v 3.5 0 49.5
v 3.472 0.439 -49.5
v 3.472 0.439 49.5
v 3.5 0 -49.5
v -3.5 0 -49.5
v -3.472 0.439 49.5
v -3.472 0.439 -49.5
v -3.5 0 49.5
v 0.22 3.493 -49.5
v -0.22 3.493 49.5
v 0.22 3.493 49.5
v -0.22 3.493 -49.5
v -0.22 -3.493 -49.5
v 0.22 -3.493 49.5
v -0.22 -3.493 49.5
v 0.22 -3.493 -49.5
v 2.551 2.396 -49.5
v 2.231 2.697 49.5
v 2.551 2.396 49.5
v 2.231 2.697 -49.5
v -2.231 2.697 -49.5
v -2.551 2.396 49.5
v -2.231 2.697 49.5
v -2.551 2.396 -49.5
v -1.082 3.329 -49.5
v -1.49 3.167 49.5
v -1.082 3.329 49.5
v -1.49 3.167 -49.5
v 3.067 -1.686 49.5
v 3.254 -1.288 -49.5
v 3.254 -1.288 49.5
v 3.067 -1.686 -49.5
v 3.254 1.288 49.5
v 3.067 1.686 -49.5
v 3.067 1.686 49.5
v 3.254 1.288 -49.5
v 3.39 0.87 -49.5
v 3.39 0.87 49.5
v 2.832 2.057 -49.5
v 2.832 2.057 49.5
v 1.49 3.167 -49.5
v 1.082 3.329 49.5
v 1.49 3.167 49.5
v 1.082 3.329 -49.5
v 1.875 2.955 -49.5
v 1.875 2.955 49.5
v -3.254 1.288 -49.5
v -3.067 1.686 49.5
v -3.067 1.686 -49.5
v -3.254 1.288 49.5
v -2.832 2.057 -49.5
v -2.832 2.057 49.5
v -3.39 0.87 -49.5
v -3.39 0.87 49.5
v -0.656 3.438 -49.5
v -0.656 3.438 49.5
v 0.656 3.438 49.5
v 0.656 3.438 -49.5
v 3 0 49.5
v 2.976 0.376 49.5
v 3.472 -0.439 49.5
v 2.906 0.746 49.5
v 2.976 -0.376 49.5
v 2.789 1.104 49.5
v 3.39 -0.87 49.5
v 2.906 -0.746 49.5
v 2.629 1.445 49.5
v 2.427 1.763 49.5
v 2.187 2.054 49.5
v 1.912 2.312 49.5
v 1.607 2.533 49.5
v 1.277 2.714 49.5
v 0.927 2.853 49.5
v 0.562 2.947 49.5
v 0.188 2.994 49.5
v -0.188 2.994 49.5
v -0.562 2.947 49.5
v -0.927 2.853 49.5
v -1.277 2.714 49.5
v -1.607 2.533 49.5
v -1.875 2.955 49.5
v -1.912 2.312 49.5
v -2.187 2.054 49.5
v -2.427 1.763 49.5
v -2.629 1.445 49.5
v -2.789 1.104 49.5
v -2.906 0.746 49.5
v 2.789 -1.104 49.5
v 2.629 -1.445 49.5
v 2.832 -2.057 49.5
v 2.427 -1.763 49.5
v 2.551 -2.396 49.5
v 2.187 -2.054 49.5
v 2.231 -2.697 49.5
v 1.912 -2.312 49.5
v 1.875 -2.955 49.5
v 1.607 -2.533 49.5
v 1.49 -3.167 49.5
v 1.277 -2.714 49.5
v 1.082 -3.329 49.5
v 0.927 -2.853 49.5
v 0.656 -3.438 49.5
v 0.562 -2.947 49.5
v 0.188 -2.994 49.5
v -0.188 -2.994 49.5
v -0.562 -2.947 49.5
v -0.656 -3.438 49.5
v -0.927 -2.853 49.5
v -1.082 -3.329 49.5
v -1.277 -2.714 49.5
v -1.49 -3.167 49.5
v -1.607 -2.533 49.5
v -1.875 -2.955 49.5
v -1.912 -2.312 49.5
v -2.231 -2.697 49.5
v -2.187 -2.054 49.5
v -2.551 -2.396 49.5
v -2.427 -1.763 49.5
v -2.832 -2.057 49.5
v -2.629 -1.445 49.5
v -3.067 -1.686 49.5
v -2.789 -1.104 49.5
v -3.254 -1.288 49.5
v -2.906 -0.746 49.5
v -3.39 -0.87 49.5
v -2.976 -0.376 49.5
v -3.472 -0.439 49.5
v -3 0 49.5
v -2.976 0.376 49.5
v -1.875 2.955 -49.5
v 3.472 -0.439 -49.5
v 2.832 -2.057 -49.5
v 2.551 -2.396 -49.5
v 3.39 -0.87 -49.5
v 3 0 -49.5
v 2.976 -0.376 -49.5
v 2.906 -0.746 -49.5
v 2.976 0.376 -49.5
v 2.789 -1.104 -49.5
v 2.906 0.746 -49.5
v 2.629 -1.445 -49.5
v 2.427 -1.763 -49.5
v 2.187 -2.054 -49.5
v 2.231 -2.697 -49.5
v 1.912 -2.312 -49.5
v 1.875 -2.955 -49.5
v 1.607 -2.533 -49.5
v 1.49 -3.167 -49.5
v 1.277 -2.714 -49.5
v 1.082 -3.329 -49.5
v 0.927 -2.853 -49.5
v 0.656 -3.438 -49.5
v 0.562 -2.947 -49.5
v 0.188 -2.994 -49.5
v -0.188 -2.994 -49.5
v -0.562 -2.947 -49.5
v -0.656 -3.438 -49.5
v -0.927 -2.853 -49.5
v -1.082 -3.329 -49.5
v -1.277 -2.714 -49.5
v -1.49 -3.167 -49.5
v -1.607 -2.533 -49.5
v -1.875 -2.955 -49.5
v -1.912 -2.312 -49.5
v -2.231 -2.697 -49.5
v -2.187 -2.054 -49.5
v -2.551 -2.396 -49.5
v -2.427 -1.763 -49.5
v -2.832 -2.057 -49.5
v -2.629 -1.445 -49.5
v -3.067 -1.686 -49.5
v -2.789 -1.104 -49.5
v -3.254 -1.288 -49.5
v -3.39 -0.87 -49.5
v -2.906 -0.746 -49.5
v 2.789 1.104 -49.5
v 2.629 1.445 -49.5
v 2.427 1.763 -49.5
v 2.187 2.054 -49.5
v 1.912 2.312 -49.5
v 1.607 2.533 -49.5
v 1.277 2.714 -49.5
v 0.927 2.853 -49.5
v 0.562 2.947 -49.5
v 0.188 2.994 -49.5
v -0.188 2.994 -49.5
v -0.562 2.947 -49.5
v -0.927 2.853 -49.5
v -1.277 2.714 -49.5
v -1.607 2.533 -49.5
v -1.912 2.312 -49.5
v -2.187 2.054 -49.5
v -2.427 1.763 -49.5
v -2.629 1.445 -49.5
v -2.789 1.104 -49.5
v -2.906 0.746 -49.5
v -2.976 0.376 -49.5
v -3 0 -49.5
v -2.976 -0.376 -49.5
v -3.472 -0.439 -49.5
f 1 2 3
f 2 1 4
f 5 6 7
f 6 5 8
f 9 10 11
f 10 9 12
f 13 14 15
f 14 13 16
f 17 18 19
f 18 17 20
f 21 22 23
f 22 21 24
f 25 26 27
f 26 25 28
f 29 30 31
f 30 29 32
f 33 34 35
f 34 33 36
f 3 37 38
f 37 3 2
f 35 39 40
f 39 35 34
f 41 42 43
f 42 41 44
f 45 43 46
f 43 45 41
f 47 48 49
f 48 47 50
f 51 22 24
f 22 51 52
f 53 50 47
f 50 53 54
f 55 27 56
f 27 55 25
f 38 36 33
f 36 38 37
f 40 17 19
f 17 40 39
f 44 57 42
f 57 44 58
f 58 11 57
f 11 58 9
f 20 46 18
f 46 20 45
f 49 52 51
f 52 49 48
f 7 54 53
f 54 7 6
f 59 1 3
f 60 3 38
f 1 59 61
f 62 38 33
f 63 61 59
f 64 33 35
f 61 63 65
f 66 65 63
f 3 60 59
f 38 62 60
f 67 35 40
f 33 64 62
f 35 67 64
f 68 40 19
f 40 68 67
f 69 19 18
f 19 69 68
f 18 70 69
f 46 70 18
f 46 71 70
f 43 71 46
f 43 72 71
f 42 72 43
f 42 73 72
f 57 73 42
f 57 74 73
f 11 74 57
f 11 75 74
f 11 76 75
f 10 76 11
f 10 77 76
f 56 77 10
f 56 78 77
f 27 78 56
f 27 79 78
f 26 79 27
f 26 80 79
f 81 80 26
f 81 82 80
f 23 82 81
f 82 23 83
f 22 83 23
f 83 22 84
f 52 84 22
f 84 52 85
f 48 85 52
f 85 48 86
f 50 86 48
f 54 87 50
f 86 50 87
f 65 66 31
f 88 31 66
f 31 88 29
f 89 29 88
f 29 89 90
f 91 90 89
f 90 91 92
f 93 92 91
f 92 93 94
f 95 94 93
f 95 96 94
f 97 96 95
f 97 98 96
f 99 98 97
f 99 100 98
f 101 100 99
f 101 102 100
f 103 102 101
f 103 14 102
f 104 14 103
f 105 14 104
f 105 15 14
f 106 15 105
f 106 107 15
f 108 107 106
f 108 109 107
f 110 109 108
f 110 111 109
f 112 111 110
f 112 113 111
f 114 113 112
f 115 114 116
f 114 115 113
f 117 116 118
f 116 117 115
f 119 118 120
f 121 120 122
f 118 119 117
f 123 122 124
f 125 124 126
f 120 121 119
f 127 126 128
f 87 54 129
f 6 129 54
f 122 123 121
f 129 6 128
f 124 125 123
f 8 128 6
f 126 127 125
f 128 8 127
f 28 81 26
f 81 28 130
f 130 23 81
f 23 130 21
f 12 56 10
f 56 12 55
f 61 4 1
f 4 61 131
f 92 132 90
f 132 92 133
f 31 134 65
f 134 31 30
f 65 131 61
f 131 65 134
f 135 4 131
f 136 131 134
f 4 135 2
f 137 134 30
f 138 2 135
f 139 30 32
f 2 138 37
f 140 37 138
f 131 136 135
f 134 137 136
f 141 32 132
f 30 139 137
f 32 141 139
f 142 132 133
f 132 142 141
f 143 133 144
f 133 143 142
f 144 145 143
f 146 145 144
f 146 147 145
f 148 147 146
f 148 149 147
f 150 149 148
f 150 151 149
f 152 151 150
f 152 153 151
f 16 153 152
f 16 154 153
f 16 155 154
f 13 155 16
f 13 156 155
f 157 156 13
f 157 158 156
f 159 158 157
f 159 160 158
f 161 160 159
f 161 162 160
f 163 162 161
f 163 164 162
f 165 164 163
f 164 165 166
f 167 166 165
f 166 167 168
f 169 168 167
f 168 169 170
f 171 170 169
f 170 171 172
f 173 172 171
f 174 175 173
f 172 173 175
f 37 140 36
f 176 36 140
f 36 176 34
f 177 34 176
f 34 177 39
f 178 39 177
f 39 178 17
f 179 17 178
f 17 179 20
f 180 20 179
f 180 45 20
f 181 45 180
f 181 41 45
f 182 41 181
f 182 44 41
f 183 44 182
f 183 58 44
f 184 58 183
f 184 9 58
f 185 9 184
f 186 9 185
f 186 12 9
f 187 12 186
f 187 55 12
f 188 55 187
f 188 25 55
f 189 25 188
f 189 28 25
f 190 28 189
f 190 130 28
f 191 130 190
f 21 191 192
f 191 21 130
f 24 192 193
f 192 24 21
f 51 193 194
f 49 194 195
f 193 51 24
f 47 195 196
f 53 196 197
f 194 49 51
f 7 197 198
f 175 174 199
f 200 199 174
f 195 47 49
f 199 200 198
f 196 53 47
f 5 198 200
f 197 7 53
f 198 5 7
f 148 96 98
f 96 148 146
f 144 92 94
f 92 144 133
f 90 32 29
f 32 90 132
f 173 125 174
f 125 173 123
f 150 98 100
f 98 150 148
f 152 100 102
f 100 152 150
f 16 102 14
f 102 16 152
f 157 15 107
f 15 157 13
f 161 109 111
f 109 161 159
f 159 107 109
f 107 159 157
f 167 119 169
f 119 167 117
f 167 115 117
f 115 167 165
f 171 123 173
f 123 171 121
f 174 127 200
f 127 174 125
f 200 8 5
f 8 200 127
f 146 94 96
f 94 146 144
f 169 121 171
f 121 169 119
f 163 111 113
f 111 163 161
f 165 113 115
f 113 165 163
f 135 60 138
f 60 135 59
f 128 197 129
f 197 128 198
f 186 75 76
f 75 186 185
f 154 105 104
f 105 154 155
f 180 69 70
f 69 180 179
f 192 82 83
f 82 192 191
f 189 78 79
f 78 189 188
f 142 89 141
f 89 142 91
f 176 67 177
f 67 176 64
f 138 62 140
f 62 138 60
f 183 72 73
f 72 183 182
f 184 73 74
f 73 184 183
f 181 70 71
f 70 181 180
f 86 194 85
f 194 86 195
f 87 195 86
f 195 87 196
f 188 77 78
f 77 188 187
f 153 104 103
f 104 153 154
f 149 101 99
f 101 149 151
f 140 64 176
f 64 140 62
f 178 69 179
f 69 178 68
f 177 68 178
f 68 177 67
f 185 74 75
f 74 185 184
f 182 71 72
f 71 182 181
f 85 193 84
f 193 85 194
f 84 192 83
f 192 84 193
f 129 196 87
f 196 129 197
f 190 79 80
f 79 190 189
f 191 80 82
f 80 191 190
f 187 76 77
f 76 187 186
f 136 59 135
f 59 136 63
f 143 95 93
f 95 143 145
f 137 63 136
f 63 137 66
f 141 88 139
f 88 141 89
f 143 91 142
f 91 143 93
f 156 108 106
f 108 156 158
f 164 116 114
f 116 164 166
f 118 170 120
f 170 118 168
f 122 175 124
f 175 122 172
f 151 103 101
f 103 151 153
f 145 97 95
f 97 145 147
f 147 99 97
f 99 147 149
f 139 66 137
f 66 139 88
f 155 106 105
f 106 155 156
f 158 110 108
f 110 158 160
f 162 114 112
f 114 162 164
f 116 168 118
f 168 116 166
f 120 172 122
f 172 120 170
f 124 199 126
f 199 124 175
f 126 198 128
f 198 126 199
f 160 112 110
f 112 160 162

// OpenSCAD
$fn = 50;


difference() {
	union() {
		translate(v = [0, 0, -49.5000000000]) {
			cylinder(h = 99, r = 3.5000000000);
		}
	}
	union() {
		translate(v = [0, 0, -100.0000000000]) {
			cylinder(h = 200, r = 3.0000000000);
		}
	}
}
